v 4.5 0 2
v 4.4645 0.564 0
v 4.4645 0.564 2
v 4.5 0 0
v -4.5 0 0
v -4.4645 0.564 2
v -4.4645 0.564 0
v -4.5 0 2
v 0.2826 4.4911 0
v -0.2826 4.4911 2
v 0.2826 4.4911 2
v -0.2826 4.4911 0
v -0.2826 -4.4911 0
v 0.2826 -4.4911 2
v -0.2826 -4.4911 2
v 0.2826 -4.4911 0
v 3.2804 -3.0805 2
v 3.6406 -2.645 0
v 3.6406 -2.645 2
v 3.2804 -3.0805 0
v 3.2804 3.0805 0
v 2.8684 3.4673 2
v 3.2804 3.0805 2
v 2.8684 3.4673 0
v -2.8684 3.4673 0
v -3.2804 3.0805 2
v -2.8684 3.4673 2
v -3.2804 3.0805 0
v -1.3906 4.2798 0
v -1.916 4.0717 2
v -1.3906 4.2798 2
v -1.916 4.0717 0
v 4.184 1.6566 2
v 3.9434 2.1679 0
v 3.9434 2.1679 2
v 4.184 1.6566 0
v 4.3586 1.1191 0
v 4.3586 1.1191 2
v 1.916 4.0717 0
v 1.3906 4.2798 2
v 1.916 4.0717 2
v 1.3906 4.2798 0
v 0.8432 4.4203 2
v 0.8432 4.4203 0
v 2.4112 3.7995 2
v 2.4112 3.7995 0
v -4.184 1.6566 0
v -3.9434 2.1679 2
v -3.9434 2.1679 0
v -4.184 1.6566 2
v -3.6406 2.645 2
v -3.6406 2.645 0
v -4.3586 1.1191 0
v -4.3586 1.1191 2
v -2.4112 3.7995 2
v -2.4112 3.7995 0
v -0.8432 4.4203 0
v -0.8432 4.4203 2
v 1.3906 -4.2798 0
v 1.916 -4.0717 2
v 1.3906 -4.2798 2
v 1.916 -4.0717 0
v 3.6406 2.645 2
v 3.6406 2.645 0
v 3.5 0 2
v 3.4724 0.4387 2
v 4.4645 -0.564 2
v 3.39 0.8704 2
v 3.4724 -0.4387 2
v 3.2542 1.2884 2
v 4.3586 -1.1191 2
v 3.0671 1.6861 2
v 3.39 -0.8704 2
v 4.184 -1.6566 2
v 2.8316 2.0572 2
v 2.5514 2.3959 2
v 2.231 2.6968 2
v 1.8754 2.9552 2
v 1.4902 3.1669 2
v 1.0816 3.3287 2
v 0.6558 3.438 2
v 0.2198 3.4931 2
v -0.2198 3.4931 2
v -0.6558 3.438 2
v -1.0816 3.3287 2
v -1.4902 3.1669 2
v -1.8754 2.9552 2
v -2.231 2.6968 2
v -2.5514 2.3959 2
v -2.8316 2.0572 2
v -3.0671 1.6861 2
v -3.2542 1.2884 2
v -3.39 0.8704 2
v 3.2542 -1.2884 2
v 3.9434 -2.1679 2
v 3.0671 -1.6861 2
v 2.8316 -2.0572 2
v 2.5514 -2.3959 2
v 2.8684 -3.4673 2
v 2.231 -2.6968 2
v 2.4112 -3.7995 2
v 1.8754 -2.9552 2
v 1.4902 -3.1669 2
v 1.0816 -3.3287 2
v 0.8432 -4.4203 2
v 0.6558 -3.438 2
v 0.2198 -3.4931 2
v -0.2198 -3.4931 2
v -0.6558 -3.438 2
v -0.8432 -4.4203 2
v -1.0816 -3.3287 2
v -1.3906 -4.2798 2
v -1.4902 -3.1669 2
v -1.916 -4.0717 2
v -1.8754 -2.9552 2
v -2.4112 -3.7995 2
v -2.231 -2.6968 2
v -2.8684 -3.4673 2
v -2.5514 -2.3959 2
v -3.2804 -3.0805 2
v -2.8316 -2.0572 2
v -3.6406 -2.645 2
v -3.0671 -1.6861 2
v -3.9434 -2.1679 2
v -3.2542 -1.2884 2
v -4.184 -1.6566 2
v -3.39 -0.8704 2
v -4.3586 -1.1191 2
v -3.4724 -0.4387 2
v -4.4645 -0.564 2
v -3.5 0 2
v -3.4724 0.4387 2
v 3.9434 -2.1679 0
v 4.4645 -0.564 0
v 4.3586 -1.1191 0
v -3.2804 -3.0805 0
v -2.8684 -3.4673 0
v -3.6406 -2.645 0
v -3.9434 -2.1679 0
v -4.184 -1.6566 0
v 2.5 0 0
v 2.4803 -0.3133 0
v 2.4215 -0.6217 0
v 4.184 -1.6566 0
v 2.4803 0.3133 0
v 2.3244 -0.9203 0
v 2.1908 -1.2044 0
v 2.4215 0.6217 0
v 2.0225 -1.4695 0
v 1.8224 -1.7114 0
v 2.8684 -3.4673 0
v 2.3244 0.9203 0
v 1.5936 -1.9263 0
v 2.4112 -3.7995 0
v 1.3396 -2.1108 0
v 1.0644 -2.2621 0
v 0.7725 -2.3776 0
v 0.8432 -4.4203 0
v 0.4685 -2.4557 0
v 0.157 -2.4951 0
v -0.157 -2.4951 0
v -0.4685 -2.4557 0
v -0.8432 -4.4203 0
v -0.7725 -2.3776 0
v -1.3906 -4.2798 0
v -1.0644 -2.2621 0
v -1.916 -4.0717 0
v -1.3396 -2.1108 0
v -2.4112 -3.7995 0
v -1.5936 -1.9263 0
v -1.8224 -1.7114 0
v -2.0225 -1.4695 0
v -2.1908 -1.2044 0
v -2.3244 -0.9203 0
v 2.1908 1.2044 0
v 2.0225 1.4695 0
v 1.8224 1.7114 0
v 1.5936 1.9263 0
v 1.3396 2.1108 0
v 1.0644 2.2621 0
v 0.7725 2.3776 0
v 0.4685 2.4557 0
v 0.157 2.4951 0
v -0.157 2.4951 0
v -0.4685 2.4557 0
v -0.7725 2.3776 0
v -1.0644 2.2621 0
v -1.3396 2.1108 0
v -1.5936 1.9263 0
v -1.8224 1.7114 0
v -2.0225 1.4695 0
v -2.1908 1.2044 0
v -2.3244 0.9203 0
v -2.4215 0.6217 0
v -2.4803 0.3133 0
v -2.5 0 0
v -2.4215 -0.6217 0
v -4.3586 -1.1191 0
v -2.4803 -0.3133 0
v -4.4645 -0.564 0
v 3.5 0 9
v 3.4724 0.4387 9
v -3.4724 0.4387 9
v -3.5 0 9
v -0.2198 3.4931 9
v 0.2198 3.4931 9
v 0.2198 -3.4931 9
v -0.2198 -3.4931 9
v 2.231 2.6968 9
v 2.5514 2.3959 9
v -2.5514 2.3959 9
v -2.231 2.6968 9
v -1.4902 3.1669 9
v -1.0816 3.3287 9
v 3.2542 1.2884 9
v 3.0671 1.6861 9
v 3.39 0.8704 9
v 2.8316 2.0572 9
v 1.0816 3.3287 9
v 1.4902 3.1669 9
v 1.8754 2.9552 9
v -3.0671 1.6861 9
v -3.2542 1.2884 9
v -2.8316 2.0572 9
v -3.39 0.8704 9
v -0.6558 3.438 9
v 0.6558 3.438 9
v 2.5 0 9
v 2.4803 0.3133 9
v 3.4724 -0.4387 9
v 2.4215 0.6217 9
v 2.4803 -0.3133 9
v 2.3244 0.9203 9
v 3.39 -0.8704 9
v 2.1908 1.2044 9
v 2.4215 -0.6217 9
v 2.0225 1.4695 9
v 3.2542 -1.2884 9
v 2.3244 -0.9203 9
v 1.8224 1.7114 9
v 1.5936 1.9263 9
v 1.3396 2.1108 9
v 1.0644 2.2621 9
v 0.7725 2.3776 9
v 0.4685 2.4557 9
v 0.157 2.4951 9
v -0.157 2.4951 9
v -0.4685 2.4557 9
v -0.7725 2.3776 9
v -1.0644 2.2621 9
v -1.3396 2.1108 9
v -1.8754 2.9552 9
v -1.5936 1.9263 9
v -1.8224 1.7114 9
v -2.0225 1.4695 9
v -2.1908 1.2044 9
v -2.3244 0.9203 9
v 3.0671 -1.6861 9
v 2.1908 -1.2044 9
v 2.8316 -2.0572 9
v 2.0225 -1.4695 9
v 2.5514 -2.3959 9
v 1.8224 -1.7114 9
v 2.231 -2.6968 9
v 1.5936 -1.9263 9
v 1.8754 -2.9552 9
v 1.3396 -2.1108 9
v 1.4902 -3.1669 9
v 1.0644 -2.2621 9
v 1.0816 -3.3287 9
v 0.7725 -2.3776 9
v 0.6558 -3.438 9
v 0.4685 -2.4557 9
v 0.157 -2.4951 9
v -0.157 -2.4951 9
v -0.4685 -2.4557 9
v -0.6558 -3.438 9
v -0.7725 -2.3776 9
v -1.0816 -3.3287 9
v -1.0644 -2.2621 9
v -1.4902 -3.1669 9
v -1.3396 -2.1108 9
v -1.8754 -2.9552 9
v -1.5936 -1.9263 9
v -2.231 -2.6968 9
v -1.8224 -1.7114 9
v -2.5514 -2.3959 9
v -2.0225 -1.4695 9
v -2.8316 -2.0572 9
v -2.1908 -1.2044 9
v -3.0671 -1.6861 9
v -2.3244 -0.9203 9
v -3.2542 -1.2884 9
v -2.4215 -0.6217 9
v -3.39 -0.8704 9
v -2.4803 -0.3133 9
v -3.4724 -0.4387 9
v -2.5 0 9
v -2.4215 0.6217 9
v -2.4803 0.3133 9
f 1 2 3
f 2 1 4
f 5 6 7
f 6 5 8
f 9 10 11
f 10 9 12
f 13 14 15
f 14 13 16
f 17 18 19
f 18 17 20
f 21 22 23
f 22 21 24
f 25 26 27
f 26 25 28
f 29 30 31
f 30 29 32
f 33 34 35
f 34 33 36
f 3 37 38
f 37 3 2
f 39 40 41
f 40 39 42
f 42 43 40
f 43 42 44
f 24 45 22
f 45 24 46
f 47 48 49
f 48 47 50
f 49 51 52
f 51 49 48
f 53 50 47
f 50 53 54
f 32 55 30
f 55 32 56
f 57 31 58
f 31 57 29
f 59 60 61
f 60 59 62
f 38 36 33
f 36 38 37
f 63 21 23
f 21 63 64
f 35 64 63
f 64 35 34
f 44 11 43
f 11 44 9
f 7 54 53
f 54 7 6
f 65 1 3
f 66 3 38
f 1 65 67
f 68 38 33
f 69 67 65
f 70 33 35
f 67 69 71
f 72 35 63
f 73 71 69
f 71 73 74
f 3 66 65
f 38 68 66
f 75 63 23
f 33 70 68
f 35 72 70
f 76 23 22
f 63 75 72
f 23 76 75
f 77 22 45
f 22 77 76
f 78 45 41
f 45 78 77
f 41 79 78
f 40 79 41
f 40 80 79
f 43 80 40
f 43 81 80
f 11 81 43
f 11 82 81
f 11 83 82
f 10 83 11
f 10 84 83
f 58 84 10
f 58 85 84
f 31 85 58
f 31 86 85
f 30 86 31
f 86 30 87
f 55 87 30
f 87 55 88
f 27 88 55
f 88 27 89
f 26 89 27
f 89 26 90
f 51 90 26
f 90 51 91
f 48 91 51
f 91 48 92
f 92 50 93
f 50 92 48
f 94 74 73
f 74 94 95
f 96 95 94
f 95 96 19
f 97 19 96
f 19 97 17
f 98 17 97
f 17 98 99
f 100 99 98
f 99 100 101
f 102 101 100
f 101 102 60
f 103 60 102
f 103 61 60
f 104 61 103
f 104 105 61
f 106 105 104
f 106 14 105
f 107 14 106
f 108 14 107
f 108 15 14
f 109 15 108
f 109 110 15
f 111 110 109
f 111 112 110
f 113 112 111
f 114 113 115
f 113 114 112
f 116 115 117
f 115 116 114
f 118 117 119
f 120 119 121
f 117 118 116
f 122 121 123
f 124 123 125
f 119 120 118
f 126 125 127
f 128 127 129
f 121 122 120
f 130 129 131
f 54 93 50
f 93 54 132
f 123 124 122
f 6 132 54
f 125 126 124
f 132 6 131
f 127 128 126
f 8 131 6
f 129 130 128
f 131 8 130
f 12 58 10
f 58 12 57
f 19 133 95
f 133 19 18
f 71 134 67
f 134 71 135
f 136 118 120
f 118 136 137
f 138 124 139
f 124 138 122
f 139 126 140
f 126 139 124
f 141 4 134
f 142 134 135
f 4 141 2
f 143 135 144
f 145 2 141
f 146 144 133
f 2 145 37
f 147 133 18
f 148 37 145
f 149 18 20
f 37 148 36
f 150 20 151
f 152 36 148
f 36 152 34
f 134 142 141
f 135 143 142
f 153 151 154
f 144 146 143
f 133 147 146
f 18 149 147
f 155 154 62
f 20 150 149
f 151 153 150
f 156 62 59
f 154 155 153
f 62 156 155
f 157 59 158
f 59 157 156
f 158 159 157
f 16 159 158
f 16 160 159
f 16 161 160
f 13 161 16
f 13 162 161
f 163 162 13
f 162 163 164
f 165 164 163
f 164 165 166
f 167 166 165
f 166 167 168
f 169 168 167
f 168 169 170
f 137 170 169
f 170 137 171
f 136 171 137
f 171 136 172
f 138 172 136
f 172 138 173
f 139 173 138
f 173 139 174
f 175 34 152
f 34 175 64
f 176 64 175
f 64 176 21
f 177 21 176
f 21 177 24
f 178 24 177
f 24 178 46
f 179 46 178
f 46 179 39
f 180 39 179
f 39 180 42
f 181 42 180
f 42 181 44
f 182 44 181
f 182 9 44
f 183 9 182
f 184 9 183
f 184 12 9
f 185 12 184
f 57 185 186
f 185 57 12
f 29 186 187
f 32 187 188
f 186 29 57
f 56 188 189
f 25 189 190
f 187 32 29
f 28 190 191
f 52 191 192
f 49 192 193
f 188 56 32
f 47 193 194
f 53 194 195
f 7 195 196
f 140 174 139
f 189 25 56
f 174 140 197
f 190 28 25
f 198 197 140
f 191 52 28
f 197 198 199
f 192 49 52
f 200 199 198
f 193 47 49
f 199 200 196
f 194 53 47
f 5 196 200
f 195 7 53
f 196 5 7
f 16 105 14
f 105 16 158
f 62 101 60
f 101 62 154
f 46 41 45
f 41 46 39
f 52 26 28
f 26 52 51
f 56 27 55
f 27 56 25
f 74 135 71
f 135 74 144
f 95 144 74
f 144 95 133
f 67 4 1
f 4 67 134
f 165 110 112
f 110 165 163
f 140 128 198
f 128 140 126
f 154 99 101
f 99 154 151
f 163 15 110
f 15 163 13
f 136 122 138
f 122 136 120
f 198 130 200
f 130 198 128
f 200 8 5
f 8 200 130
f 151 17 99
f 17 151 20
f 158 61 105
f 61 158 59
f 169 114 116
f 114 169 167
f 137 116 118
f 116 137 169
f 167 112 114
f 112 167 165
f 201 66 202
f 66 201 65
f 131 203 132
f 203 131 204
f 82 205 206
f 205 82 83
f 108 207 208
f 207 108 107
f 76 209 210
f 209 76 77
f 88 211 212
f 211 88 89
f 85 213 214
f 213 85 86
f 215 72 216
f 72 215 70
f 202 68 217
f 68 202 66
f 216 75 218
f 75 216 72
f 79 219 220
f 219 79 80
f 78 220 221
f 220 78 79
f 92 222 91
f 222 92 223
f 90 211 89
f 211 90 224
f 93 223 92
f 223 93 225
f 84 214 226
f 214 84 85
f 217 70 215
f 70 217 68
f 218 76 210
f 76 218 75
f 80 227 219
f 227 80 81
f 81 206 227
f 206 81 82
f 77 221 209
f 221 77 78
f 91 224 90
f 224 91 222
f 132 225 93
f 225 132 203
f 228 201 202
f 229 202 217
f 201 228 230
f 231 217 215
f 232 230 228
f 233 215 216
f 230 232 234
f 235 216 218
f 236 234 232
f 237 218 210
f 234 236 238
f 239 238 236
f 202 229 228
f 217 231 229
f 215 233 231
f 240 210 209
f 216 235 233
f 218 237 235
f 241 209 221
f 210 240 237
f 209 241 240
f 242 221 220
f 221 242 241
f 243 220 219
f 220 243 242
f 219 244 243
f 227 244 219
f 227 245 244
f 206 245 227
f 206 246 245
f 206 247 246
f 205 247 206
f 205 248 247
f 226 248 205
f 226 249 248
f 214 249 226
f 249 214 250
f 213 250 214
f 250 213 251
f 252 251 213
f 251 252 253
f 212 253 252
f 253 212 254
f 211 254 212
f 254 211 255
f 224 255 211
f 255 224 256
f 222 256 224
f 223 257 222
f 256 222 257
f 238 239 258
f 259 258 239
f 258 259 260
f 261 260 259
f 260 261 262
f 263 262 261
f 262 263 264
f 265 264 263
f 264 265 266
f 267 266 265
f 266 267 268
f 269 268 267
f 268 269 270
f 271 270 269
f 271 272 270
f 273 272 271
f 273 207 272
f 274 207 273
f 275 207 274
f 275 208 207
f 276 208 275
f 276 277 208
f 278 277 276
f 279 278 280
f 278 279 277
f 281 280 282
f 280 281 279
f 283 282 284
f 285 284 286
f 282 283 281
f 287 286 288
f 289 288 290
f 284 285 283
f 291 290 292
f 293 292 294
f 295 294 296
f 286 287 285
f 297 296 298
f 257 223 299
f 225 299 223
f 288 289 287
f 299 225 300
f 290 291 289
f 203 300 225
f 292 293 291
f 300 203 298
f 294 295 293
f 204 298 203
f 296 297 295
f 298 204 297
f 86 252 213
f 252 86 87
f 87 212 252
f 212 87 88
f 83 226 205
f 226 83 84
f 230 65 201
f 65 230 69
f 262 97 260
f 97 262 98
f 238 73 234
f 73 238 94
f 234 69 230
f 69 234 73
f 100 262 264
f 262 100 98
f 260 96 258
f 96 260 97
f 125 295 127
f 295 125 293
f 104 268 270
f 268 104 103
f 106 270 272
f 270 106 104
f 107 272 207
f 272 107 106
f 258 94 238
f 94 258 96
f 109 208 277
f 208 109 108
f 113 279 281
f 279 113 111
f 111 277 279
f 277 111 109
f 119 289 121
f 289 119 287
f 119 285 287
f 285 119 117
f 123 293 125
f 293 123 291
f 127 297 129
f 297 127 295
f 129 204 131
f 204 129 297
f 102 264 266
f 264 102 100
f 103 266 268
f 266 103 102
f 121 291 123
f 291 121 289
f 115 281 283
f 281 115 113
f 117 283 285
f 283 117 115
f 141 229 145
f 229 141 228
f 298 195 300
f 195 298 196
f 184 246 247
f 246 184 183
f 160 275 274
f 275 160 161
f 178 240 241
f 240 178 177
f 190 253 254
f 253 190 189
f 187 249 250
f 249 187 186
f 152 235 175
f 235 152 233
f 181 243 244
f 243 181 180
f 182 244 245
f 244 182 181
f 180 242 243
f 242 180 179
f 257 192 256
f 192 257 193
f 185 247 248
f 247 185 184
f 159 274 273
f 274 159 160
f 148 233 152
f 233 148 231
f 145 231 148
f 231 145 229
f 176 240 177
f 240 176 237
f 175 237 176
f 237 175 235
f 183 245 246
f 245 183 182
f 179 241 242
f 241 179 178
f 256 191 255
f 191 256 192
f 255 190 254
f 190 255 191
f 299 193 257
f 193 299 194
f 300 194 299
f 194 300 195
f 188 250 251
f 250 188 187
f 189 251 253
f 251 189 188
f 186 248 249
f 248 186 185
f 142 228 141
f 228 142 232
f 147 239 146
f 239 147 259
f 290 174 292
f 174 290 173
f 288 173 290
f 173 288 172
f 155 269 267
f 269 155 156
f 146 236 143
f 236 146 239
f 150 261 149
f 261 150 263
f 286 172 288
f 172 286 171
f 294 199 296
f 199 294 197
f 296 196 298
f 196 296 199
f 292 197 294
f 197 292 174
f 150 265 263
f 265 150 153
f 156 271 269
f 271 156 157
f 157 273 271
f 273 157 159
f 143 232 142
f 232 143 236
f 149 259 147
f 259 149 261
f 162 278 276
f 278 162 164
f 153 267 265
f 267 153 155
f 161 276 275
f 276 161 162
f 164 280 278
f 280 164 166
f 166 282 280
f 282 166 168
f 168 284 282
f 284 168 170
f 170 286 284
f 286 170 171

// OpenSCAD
$fn=50;


difference() {
    union() {
        cylinder(2,9/2,9/2);
        cylinder(9,7/2,7/2);
    }
    cylinder(9,5/2,5/2);
}
